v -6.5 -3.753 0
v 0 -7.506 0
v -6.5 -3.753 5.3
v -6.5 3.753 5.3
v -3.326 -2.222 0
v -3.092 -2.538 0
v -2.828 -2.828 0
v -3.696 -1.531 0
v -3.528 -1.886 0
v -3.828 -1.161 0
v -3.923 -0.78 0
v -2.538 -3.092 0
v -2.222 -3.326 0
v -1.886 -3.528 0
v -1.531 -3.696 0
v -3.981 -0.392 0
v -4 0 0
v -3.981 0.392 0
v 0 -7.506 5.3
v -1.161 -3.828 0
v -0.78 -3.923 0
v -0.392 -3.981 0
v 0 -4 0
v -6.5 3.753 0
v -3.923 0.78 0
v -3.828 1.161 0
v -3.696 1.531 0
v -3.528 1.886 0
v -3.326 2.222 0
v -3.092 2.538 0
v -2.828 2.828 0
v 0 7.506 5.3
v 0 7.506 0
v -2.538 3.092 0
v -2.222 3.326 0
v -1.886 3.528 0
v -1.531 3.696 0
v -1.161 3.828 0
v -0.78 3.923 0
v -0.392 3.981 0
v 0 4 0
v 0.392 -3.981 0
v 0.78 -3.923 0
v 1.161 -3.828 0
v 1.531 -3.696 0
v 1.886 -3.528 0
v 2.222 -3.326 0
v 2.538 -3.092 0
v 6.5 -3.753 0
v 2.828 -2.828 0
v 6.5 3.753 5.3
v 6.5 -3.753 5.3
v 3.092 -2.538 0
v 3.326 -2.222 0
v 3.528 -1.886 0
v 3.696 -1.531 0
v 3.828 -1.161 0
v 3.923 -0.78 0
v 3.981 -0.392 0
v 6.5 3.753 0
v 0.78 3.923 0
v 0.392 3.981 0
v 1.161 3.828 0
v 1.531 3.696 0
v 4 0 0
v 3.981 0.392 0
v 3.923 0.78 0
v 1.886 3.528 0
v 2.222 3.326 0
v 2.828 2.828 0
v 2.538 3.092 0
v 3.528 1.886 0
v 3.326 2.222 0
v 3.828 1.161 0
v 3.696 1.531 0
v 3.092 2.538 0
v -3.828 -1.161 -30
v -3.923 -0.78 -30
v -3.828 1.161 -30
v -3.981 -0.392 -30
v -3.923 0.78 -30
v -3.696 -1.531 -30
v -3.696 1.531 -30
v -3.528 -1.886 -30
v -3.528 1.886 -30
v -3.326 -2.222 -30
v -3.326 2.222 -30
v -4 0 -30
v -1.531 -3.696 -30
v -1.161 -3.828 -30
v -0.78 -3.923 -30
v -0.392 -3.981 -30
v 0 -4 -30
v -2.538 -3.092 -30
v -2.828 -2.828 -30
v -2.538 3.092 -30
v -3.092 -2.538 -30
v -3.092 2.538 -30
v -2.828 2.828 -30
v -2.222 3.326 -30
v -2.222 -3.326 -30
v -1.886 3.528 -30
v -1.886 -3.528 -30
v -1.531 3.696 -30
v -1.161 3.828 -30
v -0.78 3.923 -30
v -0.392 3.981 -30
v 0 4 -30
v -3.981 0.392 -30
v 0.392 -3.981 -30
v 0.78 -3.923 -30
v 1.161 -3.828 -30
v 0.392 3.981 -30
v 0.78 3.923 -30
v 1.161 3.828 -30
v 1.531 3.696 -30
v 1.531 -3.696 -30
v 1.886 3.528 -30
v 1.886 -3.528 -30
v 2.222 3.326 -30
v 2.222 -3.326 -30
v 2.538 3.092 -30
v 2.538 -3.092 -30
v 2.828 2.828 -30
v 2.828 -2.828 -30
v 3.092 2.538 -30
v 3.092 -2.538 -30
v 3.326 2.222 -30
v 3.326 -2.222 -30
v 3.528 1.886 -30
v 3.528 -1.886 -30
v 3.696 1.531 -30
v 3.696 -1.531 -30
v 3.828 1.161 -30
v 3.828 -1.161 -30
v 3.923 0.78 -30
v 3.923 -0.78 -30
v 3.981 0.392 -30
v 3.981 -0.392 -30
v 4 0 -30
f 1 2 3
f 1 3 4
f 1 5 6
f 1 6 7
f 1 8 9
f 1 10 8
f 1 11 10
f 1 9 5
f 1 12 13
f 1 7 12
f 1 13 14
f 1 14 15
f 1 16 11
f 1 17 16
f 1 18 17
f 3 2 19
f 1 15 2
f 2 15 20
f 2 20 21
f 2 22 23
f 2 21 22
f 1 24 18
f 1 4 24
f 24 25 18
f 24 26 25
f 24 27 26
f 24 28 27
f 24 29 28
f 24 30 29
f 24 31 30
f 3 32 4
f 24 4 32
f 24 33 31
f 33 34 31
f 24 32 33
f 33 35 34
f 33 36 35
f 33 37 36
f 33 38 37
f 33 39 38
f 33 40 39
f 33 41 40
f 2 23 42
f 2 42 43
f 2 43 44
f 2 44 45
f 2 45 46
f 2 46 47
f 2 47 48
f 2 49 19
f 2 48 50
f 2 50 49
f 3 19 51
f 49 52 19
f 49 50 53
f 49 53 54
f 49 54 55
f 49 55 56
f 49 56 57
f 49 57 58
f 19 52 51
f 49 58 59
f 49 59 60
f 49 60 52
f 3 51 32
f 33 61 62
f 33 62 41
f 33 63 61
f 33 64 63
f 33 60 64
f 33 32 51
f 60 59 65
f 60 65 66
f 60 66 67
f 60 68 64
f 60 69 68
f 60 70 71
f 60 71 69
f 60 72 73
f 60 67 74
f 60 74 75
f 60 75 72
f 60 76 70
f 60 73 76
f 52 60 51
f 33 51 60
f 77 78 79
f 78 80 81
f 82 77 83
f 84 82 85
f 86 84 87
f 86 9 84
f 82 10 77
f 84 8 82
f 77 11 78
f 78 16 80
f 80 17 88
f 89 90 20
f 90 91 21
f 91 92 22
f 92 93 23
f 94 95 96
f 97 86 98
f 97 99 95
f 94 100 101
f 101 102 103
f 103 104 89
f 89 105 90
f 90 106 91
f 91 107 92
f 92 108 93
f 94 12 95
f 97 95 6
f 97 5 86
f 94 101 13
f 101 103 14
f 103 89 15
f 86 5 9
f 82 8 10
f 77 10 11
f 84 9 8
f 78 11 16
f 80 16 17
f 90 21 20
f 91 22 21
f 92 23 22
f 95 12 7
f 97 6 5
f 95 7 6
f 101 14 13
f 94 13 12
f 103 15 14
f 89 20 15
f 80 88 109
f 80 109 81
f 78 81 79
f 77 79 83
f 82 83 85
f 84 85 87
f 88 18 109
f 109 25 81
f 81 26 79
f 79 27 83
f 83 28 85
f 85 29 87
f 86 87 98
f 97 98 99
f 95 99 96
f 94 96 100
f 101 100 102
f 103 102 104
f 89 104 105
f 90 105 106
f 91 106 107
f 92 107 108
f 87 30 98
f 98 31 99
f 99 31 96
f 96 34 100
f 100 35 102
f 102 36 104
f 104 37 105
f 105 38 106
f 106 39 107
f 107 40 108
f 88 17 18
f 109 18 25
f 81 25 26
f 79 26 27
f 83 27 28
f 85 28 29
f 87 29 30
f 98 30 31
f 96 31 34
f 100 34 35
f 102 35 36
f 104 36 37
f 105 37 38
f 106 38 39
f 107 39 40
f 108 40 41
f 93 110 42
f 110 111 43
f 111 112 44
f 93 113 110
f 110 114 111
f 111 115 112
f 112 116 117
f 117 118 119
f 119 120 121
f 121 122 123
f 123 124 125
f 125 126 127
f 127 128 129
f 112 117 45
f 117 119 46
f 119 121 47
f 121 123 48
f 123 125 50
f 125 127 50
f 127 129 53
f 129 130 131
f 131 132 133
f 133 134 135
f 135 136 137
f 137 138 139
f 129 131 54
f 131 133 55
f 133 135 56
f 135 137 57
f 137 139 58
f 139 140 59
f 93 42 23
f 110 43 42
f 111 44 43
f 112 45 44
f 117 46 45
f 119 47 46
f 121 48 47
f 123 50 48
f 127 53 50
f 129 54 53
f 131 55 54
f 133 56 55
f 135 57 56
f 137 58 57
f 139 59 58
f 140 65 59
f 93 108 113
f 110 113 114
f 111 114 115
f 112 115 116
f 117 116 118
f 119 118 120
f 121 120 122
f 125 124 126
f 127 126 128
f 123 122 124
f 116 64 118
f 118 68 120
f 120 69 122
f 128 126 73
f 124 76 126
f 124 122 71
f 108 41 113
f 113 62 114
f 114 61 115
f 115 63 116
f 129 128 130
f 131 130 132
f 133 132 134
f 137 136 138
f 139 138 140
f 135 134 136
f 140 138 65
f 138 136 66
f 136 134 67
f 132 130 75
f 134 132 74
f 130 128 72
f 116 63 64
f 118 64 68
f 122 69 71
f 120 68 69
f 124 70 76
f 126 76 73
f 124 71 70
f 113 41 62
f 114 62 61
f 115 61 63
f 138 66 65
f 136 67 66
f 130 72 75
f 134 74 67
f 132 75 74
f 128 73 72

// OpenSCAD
// M8 Hex Bolt (Standard Dimensions)
// $fn is set globally for the shank smoothness.
$fn = 64;

// Dimensions
head_across_flats = 13;
head_height = 5.3;
shank_diameter = 8;
shank_length = 30;

// Hexagon calculation:
// The distance across the flats (W) is related to the vertex-to-vertex diameter (D) by:
// W = D * cos(30 degrees)  =>  D = W / cos(30 degrees)
head_diameter = head_across_flats / cos(30);

// --- Shank ---
// Placed from z = -30 to z = 0
// The bottom of the cylinder is at z = -30, top is at z = 0
translate([0, 0, -shank_length])
    cylinder(d = shank_diameter, h = shank_length);

// --- Head ---
// Placed from z = 0 to z = 5.3
// Using $fn=6 creates a perfect hexagon.
// Rotating by 30 degrees ensures the flat face is perpendicular to the X-axis.
rotate([0, 0, 30])
    cylinder(d = head_diameter, h = head_height, $fn = 6);
